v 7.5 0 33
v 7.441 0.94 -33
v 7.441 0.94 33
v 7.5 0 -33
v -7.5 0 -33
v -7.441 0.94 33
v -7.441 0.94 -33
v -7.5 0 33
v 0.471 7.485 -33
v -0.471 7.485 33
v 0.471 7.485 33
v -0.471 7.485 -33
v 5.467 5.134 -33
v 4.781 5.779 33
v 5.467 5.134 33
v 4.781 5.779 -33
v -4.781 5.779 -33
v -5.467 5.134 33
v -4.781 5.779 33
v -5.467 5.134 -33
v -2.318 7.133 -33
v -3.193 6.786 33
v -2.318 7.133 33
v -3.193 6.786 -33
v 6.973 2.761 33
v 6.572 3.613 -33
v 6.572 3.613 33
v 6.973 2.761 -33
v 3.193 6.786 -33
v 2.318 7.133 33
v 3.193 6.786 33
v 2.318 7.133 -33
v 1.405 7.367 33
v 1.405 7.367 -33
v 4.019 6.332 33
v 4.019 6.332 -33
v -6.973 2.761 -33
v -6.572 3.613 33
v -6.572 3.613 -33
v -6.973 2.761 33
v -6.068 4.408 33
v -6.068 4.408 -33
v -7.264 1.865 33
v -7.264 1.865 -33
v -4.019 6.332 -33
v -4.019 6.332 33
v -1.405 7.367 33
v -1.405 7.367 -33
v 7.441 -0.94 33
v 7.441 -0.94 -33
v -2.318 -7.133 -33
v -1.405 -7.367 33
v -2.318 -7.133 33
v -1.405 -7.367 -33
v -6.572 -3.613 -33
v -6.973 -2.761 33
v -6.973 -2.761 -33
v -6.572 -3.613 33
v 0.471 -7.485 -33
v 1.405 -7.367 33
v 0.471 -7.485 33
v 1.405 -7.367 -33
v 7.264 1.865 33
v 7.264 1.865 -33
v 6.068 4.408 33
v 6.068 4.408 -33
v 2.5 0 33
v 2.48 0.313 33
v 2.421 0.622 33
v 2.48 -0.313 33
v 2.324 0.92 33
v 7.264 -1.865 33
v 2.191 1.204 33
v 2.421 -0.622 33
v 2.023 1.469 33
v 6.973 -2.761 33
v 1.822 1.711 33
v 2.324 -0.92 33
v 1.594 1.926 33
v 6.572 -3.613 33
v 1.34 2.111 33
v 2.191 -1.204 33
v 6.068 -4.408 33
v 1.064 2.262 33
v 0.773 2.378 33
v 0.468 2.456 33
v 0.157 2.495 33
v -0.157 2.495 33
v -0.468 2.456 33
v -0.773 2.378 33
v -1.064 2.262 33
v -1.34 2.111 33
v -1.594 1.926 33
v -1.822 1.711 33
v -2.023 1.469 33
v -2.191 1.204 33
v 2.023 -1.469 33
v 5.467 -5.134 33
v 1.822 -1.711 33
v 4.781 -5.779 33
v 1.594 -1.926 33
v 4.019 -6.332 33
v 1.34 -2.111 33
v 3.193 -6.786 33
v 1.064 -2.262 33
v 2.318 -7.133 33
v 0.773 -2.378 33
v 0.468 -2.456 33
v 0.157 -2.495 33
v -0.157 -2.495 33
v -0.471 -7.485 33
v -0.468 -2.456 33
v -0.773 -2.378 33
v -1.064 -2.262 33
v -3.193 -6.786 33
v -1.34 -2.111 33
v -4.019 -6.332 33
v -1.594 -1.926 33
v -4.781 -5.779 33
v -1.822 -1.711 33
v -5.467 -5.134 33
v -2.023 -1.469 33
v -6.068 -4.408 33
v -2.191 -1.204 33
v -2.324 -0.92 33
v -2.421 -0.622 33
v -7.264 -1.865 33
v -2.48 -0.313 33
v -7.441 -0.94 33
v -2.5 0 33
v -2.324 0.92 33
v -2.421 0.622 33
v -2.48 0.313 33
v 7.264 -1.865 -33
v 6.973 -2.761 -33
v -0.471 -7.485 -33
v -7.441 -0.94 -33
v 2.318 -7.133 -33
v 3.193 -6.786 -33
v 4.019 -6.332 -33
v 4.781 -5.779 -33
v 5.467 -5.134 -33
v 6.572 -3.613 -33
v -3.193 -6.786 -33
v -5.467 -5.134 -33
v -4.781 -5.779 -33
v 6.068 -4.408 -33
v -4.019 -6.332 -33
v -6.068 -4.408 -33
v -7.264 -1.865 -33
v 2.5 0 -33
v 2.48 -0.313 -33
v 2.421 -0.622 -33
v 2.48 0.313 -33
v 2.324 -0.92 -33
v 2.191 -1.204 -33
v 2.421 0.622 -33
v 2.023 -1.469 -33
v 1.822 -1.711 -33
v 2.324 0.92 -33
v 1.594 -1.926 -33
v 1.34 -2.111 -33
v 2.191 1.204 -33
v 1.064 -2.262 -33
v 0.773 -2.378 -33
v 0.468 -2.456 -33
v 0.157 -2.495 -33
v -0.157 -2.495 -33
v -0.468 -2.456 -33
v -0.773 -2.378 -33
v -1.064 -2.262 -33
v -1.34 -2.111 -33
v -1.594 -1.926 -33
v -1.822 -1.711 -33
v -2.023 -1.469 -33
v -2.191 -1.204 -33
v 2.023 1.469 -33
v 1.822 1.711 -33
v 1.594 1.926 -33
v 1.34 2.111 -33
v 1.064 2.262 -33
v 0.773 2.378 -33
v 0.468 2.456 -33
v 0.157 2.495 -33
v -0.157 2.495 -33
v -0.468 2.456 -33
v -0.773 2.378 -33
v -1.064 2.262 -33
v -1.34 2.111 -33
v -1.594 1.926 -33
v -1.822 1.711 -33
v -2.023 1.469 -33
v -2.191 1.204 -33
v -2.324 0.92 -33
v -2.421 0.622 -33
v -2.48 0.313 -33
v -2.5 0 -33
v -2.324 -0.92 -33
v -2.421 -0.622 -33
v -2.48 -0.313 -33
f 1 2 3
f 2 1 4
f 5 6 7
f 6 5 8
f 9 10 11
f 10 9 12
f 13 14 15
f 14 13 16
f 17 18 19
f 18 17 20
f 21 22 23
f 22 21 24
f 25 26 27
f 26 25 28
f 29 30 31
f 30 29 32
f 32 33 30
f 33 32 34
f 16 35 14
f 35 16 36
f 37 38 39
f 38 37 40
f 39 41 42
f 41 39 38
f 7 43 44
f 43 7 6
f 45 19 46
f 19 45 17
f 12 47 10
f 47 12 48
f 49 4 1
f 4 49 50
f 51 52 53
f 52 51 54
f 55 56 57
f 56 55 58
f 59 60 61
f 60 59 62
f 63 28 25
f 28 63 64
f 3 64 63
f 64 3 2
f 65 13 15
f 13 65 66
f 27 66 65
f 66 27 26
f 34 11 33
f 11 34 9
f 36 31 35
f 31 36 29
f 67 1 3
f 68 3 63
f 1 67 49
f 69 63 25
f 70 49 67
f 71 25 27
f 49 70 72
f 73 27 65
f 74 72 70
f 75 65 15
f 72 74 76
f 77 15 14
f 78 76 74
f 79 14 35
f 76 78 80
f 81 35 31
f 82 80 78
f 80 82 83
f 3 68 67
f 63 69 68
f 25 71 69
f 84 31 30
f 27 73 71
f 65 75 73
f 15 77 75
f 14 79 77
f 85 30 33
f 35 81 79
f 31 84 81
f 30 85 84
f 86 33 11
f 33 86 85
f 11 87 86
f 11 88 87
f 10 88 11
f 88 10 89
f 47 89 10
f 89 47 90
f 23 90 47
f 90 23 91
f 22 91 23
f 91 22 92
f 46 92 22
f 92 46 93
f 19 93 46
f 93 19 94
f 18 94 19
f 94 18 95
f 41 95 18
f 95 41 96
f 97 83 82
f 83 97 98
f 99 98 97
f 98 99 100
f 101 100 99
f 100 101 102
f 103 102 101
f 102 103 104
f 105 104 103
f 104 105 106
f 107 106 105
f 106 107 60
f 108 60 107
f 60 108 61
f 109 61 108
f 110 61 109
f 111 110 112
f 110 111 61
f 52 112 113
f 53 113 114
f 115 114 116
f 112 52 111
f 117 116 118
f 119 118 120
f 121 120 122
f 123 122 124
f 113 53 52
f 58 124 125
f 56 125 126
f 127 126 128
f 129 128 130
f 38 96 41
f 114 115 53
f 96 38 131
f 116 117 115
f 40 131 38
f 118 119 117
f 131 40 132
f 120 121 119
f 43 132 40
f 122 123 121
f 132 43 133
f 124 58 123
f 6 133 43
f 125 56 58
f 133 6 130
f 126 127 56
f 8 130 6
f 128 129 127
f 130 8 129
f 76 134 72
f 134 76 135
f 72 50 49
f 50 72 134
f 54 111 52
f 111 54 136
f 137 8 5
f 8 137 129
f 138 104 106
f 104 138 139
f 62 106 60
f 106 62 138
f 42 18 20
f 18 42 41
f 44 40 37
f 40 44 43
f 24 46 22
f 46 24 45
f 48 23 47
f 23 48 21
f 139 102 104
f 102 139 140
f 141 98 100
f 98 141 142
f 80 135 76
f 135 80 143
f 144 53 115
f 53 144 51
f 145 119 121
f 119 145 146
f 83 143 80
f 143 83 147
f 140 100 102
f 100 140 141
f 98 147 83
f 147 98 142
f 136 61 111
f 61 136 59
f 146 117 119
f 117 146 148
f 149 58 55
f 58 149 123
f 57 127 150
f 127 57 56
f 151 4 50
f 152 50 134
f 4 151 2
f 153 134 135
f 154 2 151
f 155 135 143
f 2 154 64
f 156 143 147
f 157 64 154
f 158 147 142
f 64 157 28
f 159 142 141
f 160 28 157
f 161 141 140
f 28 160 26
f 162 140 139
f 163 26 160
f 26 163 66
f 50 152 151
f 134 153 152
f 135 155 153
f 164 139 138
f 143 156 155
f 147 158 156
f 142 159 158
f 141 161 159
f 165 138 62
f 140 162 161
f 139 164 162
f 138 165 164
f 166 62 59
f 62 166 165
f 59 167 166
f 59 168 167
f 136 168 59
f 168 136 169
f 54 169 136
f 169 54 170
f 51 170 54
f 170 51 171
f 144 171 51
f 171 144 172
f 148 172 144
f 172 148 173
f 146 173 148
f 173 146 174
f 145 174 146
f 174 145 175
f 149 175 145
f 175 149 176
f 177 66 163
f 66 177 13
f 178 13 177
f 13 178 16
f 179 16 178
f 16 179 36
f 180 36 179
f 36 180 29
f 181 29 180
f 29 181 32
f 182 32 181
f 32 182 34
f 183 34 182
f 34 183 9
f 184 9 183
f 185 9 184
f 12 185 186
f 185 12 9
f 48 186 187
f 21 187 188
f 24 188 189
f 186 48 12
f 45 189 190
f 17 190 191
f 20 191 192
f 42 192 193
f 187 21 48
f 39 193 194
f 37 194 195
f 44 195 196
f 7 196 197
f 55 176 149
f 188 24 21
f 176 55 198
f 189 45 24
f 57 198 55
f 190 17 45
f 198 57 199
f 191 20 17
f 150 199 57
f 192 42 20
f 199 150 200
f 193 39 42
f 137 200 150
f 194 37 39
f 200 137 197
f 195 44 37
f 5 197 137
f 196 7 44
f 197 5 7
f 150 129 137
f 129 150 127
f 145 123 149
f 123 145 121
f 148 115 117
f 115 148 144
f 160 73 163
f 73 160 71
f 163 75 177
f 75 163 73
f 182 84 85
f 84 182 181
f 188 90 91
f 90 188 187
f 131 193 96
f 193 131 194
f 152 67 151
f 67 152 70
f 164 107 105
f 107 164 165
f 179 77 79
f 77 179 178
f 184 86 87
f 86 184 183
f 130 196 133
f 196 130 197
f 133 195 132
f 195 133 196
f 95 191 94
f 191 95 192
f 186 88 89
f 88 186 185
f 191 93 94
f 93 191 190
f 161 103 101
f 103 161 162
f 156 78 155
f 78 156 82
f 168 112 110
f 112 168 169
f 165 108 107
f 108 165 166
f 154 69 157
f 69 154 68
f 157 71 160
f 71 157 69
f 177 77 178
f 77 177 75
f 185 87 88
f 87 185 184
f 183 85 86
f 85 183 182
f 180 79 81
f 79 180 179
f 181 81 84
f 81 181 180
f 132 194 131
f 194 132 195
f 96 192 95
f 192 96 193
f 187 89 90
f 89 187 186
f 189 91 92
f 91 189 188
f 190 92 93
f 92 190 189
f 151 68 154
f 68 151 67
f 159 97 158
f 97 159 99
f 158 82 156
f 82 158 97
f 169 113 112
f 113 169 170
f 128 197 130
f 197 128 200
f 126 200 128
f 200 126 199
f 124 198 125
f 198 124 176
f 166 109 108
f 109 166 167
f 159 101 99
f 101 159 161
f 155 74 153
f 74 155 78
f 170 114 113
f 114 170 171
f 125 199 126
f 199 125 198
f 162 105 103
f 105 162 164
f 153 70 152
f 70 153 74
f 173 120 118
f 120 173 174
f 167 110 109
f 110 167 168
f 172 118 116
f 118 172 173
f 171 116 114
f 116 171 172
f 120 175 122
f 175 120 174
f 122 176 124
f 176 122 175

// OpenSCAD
$fn = 50;


difference() {
	union() {
		translate(v = [0, 0, -33.0000000000]) {
			cylinder(h = 66, r = 7.5000000000);
		}
	}
	union() {
		translate(v = [0, 0, -100.0000000000]) {
			cylinder(h = 200, r = 2.5000000000);
		}
	}
}
